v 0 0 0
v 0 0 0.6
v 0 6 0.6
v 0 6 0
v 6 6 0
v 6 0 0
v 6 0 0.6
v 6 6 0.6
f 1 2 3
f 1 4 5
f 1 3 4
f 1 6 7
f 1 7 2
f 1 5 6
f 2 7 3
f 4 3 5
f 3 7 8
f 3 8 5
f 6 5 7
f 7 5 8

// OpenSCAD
/* Warning, this is a very basic generator with a lot of approximation 
input data : [UQFN, R8B, 6x6x0.6mm, 56, , A, C04-21374A]
generated by com.zoubworld.electronics.cad.model3d.Basic
Date : Sun Feb 15 10:50:49 CET 2026
*/

//body
color("black")
translate([0,0,0])
cube([6.0,6.0,0.6], center=false);
